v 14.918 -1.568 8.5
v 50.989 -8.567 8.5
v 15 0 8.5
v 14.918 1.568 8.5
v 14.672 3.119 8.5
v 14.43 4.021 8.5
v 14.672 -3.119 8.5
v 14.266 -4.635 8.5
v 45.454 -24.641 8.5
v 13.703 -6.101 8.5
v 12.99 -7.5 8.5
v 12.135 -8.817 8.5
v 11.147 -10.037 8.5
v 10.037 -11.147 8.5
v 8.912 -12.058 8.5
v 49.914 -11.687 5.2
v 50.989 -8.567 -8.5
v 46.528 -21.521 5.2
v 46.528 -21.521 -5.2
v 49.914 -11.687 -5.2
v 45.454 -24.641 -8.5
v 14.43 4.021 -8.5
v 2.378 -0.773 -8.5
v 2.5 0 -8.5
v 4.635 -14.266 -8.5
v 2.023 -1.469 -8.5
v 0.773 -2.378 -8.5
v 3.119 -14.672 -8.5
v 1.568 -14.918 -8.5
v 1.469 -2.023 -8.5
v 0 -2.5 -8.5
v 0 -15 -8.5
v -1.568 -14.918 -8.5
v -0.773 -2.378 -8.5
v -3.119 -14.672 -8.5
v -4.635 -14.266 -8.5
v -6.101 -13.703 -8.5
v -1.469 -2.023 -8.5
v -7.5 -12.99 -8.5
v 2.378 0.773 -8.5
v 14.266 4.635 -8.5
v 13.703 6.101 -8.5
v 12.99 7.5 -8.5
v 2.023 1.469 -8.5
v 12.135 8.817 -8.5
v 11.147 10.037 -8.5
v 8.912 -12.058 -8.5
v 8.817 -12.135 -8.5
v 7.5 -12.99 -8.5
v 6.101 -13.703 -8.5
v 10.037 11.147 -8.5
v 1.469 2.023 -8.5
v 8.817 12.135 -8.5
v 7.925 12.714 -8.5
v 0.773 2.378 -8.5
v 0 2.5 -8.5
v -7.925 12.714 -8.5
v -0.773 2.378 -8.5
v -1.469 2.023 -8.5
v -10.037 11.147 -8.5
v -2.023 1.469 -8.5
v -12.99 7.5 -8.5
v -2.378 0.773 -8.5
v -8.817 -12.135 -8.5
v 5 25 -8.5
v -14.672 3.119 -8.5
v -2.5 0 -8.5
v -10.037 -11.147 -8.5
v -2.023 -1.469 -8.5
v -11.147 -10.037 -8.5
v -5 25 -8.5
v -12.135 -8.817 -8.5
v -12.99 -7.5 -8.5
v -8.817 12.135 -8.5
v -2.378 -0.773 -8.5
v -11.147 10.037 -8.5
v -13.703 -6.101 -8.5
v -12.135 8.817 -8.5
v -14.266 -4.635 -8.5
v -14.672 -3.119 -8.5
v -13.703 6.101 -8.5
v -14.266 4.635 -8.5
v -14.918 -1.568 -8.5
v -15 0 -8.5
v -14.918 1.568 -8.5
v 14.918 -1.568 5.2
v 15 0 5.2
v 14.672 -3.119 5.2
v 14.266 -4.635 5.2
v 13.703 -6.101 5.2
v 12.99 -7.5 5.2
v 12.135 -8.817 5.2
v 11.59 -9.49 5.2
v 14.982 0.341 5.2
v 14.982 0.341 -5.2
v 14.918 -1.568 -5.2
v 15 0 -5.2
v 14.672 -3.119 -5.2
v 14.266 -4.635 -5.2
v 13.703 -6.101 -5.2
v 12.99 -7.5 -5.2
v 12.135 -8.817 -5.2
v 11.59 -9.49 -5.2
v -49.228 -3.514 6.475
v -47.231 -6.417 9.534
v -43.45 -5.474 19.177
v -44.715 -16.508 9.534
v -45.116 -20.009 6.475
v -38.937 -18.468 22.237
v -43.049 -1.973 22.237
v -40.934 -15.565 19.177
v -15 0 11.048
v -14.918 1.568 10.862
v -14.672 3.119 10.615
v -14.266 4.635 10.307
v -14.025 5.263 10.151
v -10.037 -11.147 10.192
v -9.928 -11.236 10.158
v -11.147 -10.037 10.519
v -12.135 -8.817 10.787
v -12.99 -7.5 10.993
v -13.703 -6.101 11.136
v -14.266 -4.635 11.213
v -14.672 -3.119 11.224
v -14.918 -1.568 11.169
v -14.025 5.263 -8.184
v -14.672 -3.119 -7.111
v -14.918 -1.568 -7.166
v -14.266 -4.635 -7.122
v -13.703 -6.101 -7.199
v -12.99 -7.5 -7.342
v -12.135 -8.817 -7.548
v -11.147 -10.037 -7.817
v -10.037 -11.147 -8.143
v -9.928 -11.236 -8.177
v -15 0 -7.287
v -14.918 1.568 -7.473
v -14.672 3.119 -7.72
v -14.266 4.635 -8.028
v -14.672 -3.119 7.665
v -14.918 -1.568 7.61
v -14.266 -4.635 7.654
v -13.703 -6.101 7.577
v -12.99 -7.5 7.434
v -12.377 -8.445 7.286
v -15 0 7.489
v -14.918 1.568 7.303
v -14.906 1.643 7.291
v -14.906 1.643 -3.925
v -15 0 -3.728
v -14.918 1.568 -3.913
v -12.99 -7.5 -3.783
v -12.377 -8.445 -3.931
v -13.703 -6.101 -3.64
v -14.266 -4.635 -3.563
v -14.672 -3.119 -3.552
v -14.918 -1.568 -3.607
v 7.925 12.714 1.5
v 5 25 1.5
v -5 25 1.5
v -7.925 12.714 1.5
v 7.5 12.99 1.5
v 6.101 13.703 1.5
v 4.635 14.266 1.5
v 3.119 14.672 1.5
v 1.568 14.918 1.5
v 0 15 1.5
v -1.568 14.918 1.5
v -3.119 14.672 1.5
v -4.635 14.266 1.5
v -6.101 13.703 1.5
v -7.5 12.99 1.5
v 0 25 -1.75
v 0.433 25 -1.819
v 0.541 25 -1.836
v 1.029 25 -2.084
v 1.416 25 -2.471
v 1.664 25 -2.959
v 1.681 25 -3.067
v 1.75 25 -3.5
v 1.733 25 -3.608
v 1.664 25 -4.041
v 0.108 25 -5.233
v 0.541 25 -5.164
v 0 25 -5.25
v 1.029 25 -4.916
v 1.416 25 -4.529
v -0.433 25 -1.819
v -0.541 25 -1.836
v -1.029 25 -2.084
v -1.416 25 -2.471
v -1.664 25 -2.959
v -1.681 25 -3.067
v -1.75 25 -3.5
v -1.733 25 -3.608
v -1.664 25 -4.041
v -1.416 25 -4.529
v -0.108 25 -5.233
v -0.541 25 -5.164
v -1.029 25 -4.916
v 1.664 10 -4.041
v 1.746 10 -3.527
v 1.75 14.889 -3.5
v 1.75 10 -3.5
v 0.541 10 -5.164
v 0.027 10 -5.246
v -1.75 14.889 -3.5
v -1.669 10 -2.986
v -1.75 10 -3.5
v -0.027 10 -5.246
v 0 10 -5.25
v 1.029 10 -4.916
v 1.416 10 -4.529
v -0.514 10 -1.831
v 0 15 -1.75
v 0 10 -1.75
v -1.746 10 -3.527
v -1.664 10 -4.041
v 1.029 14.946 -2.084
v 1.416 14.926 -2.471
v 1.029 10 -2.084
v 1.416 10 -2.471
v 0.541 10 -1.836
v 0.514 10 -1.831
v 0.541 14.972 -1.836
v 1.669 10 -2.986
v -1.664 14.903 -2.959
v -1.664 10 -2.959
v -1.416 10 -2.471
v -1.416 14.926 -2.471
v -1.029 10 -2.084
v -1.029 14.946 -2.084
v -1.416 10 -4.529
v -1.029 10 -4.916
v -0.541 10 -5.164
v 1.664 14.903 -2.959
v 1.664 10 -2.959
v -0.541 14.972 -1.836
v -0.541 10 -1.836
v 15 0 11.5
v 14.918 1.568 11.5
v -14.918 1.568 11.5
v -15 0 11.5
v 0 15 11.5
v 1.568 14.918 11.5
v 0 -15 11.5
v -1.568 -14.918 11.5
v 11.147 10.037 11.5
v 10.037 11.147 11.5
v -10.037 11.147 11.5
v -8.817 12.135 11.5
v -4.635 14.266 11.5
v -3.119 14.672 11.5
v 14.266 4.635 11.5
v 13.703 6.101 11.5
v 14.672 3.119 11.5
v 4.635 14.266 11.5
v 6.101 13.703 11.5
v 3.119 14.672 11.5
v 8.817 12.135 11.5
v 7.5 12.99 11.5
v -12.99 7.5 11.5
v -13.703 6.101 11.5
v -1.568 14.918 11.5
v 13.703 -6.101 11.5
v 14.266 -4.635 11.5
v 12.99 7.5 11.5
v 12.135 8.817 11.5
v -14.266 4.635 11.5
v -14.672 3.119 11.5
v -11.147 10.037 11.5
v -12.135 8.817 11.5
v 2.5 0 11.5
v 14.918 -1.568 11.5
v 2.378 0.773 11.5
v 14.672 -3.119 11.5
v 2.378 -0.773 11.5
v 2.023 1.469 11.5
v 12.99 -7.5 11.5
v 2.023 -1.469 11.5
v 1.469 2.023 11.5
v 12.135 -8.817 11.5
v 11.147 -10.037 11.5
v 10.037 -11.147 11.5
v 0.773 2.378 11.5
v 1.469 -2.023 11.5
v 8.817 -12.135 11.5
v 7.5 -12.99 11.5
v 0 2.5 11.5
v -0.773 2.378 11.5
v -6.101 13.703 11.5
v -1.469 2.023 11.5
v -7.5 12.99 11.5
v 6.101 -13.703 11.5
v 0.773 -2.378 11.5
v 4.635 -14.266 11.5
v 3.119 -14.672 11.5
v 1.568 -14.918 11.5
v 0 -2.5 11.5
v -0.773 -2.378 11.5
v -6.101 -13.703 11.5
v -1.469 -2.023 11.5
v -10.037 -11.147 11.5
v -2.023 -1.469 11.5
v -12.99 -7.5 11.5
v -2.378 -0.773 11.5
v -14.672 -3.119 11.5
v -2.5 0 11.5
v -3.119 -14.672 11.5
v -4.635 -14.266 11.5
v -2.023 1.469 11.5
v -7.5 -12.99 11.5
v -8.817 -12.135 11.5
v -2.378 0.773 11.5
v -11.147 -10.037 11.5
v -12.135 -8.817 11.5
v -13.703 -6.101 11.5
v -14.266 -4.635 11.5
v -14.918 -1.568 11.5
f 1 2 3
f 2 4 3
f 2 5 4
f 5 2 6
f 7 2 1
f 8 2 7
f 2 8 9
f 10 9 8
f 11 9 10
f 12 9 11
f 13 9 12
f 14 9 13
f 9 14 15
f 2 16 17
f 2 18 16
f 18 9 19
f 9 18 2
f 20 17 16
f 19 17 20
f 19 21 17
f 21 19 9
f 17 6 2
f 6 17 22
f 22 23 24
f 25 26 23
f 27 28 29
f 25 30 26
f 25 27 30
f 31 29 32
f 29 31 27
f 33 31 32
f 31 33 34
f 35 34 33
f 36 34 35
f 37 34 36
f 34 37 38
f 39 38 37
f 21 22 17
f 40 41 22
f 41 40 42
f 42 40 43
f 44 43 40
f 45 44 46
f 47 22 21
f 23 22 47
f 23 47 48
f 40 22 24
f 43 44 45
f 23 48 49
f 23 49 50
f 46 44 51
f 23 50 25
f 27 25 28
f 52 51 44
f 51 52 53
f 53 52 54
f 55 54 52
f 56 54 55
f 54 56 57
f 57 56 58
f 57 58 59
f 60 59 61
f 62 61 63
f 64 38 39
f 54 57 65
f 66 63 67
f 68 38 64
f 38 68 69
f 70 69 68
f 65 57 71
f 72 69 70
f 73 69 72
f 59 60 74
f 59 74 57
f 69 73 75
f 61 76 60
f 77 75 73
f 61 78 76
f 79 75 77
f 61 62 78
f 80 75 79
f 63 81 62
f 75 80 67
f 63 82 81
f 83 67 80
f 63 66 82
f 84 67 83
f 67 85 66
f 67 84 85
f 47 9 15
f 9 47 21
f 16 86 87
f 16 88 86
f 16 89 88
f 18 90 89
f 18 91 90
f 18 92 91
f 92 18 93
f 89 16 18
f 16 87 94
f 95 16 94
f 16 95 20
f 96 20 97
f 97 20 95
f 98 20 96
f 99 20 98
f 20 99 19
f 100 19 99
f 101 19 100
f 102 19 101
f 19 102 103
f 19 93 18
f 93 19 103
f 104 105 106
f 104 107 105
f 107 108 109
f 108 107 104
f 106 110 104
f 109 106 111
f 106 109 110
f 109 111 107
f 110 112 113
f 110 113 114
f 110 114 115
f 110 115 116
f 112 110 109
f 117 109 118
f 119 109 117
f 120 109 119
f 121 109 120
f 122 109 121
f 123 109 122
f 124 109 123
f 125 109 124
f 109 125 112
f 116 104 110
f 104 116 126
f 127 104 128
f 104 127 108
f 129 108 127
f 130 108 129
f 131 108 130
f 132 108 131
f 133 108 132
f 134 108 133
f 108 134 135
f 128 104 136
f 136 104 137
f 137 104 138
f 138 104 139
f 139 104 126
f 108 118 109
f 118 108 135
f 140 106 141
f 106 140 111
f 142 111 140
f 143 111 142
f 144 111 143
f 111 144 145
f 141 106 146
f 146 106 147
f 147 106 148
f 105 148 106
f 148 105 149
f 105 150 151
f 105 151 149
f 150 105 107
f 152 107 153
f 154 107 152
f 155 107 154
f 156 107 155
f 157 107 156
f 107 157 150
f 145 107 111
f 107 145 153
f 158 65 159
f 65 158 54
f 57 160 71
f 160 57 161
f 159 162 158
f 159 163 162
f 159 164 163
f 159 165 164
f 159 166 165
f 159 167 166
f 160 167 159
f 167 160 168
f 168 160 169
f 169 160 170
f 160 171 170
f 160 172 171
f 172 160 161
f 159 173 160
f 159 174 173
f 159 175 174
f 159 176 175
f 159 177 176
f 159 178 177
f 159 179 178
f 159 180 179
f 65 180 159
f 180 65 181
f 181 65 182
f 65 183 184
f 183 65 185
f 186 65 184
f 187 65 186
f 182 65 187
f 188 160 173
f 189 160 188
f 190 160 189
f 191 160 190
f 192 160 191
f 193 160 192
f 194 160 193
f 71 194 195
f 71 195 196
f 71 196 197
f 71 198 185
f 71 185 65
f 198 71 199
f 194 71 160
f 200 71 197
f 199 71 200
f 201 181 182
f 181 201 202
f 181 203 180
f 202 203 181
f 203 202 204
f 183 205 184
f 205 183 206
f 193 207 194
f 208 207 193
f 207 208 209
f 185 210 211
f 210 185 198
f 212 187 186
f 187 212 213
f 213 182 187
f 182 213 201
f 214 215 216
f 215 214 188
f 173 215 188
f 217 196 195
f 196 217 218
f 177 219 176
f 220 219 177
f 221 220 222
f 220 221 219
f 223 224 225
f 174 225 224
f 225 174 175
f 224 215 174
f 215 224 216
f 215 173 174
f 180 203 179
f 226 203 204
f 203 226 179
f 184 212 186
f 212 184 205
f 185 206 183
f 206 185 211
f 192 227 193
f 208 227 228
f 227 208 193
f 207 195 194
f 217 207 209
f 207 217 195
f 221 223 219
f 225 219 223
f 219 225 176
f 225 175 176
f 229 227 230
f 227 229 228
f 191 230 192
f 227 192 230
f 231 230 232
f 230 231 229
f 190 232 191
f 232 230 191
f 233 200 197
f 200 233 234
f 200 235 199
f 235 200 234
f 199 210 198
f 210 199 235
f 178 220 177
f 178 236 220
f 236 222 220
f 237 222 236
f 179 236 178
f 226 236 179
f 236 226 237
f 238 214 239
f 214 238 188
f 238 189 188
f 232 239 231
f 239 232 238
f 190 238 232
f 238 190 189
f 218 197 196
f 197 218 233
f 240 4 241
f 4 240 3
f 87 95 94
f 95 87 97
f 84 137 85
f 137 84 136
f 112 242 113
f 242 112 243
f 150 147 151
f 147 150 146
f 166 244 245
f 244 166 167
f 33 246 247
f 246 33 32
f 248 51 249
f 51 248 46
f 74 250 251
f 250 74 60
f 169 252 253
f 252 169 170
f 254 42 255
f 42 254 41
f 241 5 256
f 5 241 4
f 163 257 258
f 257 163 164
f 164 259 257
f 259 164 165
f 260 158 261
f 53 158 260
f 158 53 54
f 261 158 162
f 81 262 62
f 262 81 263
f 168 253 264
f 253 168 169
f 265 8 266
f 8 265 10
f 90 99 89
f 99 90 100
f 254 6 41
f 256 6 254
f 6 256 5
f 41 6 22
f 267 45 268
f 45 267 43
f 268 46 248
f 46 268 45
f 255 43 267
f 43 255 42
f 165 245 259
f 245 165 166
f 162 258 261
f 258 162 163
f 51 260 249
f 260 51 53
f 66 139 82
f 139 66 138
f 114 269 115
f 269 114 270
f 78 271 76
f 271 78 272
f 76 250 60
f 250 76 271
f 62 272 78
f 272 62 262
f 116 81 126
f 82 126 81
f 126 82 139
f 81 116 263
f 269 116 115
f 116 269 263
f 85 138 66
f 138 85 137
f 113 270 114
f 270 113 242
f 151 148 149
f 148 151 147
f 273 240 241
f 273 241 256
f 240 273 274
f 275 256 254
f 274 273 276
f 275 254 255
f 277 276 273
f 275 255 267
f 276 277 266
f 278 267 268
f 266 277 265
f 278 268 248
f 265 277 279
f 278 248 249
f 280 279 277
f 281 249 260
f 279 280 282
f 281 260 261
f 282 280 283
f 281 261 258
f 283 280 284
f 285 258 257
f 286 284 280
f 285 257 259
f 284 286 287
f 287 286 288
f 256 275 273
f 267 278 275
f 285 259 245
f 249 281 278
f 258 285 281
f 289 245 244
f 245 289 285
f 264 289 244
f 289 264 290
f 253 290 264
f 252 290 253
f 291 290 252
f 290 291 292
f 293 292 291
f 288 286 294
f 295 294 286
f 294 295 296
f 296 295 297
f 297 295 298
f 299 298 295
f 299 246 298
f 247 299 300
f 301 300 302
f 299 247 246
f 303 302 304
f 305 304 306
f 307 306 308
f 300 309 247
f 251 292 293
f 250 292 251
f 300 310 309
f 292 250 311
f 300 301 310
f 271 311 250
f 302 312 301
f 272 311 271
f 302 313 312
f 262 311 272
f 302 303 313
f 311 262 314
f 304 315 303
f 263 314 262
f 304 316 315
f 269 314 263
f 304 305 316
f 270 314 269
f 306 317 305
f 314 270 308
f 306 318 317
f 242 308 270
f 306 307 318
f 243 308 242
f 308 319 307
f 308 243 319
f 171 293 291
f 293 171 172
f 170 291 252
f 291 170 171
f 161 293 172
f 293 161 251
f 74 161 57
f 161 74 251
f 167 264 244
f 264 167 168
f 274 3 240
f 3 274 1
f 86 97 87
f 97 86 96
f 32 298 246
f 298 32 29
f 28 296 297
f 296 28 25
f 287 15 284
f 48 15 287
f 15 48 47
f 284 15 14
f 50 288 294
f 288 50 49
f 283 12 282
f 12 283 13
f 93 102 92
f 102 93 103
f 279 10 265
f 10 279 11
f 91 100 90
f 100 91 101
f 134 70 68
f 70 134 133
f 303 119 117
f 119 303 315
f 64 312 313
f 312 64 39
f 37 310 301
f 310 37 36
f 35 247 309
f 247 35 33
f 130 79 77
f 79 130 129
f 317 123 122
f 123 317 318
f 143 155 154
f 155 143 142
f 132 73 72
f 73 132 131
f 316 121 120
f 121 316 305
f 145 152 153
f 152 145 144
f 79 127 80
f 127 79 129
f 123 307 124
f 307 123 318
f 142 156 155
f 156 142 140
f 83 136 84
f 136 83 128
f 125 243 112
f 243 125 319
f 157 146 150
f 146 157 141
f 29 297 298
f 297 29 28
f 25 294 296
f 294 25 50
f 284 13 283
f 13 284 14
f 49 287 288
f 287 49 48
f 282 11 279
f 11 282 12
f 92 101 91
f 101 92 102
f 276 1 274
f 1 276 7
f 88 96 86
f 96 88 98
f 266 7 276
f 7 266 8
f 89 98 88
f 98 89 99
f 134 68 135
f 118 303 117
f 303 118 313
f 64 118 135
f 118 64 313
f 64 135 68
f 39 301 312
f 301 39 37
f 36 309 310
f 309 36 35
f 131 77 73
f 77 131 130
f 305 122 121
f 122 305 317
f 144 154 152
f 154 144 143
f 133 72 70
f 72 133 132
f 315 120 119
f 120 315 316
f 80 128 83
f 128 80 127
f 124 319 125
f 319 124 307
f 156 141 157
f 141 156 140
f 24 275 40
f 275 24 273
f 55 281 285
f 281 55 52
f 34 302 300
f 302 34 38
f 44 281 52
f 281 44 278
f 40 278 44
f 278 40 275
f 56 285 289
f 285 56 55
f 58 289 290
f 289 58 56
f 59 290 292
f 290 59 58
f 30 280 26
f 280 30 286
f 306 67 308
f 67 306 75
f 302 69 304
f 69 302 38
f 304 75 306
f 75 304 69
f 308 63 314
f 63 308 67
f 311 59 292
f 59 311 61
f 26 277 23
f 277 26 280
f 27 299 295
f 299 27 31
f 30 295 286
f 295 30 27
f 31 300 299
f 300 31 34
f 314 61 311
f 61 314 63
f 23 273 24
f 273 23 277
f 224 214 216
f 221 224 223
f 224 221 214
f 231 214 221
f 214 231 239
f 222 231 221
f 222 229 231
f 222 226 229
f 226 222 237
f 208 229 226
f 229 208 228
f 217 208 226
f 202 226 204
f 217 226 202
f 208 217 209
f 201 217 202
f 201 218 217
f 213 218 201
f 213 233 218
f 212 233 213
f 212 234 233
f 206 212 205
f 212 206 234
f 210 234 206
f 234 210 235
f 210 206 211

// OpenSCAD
rotate([0,0,-19])
translate([30,0,0])
difference(){
cube([42,17,17],center=true);
cube([43,10.4,10.4],center=true);
}

difference(){
translate([0,0,-4])
rotate([0,0,14])
rotate([0,22,0])
translate([-28,0,0])
difference(){
cube([42,17,17],center=true);
cube([43,10.4,10.4],center=true);
}
translate([0,0,-18.5])
cylinder(d=30,h=10);
}

$fn=60;
translate([0,0,-8.5])
difference(){
cylinder(d=30,h=20);
cylinder(d=5,h=20,$fn=20);
translate([0,10,5])rotate([-90,0,0])
cylinder(d=3.5,h=10);    
}

difference(){
translate([0,0,-8.5])
linear_extrude(height=10)
polygon([[-10,4],[10,4],[5,25],[-5,25]]);
translate([0,5,-3.5])rotate([-90,0,0])
cylinder(d=3.5,h=100,$fn=20);
}
